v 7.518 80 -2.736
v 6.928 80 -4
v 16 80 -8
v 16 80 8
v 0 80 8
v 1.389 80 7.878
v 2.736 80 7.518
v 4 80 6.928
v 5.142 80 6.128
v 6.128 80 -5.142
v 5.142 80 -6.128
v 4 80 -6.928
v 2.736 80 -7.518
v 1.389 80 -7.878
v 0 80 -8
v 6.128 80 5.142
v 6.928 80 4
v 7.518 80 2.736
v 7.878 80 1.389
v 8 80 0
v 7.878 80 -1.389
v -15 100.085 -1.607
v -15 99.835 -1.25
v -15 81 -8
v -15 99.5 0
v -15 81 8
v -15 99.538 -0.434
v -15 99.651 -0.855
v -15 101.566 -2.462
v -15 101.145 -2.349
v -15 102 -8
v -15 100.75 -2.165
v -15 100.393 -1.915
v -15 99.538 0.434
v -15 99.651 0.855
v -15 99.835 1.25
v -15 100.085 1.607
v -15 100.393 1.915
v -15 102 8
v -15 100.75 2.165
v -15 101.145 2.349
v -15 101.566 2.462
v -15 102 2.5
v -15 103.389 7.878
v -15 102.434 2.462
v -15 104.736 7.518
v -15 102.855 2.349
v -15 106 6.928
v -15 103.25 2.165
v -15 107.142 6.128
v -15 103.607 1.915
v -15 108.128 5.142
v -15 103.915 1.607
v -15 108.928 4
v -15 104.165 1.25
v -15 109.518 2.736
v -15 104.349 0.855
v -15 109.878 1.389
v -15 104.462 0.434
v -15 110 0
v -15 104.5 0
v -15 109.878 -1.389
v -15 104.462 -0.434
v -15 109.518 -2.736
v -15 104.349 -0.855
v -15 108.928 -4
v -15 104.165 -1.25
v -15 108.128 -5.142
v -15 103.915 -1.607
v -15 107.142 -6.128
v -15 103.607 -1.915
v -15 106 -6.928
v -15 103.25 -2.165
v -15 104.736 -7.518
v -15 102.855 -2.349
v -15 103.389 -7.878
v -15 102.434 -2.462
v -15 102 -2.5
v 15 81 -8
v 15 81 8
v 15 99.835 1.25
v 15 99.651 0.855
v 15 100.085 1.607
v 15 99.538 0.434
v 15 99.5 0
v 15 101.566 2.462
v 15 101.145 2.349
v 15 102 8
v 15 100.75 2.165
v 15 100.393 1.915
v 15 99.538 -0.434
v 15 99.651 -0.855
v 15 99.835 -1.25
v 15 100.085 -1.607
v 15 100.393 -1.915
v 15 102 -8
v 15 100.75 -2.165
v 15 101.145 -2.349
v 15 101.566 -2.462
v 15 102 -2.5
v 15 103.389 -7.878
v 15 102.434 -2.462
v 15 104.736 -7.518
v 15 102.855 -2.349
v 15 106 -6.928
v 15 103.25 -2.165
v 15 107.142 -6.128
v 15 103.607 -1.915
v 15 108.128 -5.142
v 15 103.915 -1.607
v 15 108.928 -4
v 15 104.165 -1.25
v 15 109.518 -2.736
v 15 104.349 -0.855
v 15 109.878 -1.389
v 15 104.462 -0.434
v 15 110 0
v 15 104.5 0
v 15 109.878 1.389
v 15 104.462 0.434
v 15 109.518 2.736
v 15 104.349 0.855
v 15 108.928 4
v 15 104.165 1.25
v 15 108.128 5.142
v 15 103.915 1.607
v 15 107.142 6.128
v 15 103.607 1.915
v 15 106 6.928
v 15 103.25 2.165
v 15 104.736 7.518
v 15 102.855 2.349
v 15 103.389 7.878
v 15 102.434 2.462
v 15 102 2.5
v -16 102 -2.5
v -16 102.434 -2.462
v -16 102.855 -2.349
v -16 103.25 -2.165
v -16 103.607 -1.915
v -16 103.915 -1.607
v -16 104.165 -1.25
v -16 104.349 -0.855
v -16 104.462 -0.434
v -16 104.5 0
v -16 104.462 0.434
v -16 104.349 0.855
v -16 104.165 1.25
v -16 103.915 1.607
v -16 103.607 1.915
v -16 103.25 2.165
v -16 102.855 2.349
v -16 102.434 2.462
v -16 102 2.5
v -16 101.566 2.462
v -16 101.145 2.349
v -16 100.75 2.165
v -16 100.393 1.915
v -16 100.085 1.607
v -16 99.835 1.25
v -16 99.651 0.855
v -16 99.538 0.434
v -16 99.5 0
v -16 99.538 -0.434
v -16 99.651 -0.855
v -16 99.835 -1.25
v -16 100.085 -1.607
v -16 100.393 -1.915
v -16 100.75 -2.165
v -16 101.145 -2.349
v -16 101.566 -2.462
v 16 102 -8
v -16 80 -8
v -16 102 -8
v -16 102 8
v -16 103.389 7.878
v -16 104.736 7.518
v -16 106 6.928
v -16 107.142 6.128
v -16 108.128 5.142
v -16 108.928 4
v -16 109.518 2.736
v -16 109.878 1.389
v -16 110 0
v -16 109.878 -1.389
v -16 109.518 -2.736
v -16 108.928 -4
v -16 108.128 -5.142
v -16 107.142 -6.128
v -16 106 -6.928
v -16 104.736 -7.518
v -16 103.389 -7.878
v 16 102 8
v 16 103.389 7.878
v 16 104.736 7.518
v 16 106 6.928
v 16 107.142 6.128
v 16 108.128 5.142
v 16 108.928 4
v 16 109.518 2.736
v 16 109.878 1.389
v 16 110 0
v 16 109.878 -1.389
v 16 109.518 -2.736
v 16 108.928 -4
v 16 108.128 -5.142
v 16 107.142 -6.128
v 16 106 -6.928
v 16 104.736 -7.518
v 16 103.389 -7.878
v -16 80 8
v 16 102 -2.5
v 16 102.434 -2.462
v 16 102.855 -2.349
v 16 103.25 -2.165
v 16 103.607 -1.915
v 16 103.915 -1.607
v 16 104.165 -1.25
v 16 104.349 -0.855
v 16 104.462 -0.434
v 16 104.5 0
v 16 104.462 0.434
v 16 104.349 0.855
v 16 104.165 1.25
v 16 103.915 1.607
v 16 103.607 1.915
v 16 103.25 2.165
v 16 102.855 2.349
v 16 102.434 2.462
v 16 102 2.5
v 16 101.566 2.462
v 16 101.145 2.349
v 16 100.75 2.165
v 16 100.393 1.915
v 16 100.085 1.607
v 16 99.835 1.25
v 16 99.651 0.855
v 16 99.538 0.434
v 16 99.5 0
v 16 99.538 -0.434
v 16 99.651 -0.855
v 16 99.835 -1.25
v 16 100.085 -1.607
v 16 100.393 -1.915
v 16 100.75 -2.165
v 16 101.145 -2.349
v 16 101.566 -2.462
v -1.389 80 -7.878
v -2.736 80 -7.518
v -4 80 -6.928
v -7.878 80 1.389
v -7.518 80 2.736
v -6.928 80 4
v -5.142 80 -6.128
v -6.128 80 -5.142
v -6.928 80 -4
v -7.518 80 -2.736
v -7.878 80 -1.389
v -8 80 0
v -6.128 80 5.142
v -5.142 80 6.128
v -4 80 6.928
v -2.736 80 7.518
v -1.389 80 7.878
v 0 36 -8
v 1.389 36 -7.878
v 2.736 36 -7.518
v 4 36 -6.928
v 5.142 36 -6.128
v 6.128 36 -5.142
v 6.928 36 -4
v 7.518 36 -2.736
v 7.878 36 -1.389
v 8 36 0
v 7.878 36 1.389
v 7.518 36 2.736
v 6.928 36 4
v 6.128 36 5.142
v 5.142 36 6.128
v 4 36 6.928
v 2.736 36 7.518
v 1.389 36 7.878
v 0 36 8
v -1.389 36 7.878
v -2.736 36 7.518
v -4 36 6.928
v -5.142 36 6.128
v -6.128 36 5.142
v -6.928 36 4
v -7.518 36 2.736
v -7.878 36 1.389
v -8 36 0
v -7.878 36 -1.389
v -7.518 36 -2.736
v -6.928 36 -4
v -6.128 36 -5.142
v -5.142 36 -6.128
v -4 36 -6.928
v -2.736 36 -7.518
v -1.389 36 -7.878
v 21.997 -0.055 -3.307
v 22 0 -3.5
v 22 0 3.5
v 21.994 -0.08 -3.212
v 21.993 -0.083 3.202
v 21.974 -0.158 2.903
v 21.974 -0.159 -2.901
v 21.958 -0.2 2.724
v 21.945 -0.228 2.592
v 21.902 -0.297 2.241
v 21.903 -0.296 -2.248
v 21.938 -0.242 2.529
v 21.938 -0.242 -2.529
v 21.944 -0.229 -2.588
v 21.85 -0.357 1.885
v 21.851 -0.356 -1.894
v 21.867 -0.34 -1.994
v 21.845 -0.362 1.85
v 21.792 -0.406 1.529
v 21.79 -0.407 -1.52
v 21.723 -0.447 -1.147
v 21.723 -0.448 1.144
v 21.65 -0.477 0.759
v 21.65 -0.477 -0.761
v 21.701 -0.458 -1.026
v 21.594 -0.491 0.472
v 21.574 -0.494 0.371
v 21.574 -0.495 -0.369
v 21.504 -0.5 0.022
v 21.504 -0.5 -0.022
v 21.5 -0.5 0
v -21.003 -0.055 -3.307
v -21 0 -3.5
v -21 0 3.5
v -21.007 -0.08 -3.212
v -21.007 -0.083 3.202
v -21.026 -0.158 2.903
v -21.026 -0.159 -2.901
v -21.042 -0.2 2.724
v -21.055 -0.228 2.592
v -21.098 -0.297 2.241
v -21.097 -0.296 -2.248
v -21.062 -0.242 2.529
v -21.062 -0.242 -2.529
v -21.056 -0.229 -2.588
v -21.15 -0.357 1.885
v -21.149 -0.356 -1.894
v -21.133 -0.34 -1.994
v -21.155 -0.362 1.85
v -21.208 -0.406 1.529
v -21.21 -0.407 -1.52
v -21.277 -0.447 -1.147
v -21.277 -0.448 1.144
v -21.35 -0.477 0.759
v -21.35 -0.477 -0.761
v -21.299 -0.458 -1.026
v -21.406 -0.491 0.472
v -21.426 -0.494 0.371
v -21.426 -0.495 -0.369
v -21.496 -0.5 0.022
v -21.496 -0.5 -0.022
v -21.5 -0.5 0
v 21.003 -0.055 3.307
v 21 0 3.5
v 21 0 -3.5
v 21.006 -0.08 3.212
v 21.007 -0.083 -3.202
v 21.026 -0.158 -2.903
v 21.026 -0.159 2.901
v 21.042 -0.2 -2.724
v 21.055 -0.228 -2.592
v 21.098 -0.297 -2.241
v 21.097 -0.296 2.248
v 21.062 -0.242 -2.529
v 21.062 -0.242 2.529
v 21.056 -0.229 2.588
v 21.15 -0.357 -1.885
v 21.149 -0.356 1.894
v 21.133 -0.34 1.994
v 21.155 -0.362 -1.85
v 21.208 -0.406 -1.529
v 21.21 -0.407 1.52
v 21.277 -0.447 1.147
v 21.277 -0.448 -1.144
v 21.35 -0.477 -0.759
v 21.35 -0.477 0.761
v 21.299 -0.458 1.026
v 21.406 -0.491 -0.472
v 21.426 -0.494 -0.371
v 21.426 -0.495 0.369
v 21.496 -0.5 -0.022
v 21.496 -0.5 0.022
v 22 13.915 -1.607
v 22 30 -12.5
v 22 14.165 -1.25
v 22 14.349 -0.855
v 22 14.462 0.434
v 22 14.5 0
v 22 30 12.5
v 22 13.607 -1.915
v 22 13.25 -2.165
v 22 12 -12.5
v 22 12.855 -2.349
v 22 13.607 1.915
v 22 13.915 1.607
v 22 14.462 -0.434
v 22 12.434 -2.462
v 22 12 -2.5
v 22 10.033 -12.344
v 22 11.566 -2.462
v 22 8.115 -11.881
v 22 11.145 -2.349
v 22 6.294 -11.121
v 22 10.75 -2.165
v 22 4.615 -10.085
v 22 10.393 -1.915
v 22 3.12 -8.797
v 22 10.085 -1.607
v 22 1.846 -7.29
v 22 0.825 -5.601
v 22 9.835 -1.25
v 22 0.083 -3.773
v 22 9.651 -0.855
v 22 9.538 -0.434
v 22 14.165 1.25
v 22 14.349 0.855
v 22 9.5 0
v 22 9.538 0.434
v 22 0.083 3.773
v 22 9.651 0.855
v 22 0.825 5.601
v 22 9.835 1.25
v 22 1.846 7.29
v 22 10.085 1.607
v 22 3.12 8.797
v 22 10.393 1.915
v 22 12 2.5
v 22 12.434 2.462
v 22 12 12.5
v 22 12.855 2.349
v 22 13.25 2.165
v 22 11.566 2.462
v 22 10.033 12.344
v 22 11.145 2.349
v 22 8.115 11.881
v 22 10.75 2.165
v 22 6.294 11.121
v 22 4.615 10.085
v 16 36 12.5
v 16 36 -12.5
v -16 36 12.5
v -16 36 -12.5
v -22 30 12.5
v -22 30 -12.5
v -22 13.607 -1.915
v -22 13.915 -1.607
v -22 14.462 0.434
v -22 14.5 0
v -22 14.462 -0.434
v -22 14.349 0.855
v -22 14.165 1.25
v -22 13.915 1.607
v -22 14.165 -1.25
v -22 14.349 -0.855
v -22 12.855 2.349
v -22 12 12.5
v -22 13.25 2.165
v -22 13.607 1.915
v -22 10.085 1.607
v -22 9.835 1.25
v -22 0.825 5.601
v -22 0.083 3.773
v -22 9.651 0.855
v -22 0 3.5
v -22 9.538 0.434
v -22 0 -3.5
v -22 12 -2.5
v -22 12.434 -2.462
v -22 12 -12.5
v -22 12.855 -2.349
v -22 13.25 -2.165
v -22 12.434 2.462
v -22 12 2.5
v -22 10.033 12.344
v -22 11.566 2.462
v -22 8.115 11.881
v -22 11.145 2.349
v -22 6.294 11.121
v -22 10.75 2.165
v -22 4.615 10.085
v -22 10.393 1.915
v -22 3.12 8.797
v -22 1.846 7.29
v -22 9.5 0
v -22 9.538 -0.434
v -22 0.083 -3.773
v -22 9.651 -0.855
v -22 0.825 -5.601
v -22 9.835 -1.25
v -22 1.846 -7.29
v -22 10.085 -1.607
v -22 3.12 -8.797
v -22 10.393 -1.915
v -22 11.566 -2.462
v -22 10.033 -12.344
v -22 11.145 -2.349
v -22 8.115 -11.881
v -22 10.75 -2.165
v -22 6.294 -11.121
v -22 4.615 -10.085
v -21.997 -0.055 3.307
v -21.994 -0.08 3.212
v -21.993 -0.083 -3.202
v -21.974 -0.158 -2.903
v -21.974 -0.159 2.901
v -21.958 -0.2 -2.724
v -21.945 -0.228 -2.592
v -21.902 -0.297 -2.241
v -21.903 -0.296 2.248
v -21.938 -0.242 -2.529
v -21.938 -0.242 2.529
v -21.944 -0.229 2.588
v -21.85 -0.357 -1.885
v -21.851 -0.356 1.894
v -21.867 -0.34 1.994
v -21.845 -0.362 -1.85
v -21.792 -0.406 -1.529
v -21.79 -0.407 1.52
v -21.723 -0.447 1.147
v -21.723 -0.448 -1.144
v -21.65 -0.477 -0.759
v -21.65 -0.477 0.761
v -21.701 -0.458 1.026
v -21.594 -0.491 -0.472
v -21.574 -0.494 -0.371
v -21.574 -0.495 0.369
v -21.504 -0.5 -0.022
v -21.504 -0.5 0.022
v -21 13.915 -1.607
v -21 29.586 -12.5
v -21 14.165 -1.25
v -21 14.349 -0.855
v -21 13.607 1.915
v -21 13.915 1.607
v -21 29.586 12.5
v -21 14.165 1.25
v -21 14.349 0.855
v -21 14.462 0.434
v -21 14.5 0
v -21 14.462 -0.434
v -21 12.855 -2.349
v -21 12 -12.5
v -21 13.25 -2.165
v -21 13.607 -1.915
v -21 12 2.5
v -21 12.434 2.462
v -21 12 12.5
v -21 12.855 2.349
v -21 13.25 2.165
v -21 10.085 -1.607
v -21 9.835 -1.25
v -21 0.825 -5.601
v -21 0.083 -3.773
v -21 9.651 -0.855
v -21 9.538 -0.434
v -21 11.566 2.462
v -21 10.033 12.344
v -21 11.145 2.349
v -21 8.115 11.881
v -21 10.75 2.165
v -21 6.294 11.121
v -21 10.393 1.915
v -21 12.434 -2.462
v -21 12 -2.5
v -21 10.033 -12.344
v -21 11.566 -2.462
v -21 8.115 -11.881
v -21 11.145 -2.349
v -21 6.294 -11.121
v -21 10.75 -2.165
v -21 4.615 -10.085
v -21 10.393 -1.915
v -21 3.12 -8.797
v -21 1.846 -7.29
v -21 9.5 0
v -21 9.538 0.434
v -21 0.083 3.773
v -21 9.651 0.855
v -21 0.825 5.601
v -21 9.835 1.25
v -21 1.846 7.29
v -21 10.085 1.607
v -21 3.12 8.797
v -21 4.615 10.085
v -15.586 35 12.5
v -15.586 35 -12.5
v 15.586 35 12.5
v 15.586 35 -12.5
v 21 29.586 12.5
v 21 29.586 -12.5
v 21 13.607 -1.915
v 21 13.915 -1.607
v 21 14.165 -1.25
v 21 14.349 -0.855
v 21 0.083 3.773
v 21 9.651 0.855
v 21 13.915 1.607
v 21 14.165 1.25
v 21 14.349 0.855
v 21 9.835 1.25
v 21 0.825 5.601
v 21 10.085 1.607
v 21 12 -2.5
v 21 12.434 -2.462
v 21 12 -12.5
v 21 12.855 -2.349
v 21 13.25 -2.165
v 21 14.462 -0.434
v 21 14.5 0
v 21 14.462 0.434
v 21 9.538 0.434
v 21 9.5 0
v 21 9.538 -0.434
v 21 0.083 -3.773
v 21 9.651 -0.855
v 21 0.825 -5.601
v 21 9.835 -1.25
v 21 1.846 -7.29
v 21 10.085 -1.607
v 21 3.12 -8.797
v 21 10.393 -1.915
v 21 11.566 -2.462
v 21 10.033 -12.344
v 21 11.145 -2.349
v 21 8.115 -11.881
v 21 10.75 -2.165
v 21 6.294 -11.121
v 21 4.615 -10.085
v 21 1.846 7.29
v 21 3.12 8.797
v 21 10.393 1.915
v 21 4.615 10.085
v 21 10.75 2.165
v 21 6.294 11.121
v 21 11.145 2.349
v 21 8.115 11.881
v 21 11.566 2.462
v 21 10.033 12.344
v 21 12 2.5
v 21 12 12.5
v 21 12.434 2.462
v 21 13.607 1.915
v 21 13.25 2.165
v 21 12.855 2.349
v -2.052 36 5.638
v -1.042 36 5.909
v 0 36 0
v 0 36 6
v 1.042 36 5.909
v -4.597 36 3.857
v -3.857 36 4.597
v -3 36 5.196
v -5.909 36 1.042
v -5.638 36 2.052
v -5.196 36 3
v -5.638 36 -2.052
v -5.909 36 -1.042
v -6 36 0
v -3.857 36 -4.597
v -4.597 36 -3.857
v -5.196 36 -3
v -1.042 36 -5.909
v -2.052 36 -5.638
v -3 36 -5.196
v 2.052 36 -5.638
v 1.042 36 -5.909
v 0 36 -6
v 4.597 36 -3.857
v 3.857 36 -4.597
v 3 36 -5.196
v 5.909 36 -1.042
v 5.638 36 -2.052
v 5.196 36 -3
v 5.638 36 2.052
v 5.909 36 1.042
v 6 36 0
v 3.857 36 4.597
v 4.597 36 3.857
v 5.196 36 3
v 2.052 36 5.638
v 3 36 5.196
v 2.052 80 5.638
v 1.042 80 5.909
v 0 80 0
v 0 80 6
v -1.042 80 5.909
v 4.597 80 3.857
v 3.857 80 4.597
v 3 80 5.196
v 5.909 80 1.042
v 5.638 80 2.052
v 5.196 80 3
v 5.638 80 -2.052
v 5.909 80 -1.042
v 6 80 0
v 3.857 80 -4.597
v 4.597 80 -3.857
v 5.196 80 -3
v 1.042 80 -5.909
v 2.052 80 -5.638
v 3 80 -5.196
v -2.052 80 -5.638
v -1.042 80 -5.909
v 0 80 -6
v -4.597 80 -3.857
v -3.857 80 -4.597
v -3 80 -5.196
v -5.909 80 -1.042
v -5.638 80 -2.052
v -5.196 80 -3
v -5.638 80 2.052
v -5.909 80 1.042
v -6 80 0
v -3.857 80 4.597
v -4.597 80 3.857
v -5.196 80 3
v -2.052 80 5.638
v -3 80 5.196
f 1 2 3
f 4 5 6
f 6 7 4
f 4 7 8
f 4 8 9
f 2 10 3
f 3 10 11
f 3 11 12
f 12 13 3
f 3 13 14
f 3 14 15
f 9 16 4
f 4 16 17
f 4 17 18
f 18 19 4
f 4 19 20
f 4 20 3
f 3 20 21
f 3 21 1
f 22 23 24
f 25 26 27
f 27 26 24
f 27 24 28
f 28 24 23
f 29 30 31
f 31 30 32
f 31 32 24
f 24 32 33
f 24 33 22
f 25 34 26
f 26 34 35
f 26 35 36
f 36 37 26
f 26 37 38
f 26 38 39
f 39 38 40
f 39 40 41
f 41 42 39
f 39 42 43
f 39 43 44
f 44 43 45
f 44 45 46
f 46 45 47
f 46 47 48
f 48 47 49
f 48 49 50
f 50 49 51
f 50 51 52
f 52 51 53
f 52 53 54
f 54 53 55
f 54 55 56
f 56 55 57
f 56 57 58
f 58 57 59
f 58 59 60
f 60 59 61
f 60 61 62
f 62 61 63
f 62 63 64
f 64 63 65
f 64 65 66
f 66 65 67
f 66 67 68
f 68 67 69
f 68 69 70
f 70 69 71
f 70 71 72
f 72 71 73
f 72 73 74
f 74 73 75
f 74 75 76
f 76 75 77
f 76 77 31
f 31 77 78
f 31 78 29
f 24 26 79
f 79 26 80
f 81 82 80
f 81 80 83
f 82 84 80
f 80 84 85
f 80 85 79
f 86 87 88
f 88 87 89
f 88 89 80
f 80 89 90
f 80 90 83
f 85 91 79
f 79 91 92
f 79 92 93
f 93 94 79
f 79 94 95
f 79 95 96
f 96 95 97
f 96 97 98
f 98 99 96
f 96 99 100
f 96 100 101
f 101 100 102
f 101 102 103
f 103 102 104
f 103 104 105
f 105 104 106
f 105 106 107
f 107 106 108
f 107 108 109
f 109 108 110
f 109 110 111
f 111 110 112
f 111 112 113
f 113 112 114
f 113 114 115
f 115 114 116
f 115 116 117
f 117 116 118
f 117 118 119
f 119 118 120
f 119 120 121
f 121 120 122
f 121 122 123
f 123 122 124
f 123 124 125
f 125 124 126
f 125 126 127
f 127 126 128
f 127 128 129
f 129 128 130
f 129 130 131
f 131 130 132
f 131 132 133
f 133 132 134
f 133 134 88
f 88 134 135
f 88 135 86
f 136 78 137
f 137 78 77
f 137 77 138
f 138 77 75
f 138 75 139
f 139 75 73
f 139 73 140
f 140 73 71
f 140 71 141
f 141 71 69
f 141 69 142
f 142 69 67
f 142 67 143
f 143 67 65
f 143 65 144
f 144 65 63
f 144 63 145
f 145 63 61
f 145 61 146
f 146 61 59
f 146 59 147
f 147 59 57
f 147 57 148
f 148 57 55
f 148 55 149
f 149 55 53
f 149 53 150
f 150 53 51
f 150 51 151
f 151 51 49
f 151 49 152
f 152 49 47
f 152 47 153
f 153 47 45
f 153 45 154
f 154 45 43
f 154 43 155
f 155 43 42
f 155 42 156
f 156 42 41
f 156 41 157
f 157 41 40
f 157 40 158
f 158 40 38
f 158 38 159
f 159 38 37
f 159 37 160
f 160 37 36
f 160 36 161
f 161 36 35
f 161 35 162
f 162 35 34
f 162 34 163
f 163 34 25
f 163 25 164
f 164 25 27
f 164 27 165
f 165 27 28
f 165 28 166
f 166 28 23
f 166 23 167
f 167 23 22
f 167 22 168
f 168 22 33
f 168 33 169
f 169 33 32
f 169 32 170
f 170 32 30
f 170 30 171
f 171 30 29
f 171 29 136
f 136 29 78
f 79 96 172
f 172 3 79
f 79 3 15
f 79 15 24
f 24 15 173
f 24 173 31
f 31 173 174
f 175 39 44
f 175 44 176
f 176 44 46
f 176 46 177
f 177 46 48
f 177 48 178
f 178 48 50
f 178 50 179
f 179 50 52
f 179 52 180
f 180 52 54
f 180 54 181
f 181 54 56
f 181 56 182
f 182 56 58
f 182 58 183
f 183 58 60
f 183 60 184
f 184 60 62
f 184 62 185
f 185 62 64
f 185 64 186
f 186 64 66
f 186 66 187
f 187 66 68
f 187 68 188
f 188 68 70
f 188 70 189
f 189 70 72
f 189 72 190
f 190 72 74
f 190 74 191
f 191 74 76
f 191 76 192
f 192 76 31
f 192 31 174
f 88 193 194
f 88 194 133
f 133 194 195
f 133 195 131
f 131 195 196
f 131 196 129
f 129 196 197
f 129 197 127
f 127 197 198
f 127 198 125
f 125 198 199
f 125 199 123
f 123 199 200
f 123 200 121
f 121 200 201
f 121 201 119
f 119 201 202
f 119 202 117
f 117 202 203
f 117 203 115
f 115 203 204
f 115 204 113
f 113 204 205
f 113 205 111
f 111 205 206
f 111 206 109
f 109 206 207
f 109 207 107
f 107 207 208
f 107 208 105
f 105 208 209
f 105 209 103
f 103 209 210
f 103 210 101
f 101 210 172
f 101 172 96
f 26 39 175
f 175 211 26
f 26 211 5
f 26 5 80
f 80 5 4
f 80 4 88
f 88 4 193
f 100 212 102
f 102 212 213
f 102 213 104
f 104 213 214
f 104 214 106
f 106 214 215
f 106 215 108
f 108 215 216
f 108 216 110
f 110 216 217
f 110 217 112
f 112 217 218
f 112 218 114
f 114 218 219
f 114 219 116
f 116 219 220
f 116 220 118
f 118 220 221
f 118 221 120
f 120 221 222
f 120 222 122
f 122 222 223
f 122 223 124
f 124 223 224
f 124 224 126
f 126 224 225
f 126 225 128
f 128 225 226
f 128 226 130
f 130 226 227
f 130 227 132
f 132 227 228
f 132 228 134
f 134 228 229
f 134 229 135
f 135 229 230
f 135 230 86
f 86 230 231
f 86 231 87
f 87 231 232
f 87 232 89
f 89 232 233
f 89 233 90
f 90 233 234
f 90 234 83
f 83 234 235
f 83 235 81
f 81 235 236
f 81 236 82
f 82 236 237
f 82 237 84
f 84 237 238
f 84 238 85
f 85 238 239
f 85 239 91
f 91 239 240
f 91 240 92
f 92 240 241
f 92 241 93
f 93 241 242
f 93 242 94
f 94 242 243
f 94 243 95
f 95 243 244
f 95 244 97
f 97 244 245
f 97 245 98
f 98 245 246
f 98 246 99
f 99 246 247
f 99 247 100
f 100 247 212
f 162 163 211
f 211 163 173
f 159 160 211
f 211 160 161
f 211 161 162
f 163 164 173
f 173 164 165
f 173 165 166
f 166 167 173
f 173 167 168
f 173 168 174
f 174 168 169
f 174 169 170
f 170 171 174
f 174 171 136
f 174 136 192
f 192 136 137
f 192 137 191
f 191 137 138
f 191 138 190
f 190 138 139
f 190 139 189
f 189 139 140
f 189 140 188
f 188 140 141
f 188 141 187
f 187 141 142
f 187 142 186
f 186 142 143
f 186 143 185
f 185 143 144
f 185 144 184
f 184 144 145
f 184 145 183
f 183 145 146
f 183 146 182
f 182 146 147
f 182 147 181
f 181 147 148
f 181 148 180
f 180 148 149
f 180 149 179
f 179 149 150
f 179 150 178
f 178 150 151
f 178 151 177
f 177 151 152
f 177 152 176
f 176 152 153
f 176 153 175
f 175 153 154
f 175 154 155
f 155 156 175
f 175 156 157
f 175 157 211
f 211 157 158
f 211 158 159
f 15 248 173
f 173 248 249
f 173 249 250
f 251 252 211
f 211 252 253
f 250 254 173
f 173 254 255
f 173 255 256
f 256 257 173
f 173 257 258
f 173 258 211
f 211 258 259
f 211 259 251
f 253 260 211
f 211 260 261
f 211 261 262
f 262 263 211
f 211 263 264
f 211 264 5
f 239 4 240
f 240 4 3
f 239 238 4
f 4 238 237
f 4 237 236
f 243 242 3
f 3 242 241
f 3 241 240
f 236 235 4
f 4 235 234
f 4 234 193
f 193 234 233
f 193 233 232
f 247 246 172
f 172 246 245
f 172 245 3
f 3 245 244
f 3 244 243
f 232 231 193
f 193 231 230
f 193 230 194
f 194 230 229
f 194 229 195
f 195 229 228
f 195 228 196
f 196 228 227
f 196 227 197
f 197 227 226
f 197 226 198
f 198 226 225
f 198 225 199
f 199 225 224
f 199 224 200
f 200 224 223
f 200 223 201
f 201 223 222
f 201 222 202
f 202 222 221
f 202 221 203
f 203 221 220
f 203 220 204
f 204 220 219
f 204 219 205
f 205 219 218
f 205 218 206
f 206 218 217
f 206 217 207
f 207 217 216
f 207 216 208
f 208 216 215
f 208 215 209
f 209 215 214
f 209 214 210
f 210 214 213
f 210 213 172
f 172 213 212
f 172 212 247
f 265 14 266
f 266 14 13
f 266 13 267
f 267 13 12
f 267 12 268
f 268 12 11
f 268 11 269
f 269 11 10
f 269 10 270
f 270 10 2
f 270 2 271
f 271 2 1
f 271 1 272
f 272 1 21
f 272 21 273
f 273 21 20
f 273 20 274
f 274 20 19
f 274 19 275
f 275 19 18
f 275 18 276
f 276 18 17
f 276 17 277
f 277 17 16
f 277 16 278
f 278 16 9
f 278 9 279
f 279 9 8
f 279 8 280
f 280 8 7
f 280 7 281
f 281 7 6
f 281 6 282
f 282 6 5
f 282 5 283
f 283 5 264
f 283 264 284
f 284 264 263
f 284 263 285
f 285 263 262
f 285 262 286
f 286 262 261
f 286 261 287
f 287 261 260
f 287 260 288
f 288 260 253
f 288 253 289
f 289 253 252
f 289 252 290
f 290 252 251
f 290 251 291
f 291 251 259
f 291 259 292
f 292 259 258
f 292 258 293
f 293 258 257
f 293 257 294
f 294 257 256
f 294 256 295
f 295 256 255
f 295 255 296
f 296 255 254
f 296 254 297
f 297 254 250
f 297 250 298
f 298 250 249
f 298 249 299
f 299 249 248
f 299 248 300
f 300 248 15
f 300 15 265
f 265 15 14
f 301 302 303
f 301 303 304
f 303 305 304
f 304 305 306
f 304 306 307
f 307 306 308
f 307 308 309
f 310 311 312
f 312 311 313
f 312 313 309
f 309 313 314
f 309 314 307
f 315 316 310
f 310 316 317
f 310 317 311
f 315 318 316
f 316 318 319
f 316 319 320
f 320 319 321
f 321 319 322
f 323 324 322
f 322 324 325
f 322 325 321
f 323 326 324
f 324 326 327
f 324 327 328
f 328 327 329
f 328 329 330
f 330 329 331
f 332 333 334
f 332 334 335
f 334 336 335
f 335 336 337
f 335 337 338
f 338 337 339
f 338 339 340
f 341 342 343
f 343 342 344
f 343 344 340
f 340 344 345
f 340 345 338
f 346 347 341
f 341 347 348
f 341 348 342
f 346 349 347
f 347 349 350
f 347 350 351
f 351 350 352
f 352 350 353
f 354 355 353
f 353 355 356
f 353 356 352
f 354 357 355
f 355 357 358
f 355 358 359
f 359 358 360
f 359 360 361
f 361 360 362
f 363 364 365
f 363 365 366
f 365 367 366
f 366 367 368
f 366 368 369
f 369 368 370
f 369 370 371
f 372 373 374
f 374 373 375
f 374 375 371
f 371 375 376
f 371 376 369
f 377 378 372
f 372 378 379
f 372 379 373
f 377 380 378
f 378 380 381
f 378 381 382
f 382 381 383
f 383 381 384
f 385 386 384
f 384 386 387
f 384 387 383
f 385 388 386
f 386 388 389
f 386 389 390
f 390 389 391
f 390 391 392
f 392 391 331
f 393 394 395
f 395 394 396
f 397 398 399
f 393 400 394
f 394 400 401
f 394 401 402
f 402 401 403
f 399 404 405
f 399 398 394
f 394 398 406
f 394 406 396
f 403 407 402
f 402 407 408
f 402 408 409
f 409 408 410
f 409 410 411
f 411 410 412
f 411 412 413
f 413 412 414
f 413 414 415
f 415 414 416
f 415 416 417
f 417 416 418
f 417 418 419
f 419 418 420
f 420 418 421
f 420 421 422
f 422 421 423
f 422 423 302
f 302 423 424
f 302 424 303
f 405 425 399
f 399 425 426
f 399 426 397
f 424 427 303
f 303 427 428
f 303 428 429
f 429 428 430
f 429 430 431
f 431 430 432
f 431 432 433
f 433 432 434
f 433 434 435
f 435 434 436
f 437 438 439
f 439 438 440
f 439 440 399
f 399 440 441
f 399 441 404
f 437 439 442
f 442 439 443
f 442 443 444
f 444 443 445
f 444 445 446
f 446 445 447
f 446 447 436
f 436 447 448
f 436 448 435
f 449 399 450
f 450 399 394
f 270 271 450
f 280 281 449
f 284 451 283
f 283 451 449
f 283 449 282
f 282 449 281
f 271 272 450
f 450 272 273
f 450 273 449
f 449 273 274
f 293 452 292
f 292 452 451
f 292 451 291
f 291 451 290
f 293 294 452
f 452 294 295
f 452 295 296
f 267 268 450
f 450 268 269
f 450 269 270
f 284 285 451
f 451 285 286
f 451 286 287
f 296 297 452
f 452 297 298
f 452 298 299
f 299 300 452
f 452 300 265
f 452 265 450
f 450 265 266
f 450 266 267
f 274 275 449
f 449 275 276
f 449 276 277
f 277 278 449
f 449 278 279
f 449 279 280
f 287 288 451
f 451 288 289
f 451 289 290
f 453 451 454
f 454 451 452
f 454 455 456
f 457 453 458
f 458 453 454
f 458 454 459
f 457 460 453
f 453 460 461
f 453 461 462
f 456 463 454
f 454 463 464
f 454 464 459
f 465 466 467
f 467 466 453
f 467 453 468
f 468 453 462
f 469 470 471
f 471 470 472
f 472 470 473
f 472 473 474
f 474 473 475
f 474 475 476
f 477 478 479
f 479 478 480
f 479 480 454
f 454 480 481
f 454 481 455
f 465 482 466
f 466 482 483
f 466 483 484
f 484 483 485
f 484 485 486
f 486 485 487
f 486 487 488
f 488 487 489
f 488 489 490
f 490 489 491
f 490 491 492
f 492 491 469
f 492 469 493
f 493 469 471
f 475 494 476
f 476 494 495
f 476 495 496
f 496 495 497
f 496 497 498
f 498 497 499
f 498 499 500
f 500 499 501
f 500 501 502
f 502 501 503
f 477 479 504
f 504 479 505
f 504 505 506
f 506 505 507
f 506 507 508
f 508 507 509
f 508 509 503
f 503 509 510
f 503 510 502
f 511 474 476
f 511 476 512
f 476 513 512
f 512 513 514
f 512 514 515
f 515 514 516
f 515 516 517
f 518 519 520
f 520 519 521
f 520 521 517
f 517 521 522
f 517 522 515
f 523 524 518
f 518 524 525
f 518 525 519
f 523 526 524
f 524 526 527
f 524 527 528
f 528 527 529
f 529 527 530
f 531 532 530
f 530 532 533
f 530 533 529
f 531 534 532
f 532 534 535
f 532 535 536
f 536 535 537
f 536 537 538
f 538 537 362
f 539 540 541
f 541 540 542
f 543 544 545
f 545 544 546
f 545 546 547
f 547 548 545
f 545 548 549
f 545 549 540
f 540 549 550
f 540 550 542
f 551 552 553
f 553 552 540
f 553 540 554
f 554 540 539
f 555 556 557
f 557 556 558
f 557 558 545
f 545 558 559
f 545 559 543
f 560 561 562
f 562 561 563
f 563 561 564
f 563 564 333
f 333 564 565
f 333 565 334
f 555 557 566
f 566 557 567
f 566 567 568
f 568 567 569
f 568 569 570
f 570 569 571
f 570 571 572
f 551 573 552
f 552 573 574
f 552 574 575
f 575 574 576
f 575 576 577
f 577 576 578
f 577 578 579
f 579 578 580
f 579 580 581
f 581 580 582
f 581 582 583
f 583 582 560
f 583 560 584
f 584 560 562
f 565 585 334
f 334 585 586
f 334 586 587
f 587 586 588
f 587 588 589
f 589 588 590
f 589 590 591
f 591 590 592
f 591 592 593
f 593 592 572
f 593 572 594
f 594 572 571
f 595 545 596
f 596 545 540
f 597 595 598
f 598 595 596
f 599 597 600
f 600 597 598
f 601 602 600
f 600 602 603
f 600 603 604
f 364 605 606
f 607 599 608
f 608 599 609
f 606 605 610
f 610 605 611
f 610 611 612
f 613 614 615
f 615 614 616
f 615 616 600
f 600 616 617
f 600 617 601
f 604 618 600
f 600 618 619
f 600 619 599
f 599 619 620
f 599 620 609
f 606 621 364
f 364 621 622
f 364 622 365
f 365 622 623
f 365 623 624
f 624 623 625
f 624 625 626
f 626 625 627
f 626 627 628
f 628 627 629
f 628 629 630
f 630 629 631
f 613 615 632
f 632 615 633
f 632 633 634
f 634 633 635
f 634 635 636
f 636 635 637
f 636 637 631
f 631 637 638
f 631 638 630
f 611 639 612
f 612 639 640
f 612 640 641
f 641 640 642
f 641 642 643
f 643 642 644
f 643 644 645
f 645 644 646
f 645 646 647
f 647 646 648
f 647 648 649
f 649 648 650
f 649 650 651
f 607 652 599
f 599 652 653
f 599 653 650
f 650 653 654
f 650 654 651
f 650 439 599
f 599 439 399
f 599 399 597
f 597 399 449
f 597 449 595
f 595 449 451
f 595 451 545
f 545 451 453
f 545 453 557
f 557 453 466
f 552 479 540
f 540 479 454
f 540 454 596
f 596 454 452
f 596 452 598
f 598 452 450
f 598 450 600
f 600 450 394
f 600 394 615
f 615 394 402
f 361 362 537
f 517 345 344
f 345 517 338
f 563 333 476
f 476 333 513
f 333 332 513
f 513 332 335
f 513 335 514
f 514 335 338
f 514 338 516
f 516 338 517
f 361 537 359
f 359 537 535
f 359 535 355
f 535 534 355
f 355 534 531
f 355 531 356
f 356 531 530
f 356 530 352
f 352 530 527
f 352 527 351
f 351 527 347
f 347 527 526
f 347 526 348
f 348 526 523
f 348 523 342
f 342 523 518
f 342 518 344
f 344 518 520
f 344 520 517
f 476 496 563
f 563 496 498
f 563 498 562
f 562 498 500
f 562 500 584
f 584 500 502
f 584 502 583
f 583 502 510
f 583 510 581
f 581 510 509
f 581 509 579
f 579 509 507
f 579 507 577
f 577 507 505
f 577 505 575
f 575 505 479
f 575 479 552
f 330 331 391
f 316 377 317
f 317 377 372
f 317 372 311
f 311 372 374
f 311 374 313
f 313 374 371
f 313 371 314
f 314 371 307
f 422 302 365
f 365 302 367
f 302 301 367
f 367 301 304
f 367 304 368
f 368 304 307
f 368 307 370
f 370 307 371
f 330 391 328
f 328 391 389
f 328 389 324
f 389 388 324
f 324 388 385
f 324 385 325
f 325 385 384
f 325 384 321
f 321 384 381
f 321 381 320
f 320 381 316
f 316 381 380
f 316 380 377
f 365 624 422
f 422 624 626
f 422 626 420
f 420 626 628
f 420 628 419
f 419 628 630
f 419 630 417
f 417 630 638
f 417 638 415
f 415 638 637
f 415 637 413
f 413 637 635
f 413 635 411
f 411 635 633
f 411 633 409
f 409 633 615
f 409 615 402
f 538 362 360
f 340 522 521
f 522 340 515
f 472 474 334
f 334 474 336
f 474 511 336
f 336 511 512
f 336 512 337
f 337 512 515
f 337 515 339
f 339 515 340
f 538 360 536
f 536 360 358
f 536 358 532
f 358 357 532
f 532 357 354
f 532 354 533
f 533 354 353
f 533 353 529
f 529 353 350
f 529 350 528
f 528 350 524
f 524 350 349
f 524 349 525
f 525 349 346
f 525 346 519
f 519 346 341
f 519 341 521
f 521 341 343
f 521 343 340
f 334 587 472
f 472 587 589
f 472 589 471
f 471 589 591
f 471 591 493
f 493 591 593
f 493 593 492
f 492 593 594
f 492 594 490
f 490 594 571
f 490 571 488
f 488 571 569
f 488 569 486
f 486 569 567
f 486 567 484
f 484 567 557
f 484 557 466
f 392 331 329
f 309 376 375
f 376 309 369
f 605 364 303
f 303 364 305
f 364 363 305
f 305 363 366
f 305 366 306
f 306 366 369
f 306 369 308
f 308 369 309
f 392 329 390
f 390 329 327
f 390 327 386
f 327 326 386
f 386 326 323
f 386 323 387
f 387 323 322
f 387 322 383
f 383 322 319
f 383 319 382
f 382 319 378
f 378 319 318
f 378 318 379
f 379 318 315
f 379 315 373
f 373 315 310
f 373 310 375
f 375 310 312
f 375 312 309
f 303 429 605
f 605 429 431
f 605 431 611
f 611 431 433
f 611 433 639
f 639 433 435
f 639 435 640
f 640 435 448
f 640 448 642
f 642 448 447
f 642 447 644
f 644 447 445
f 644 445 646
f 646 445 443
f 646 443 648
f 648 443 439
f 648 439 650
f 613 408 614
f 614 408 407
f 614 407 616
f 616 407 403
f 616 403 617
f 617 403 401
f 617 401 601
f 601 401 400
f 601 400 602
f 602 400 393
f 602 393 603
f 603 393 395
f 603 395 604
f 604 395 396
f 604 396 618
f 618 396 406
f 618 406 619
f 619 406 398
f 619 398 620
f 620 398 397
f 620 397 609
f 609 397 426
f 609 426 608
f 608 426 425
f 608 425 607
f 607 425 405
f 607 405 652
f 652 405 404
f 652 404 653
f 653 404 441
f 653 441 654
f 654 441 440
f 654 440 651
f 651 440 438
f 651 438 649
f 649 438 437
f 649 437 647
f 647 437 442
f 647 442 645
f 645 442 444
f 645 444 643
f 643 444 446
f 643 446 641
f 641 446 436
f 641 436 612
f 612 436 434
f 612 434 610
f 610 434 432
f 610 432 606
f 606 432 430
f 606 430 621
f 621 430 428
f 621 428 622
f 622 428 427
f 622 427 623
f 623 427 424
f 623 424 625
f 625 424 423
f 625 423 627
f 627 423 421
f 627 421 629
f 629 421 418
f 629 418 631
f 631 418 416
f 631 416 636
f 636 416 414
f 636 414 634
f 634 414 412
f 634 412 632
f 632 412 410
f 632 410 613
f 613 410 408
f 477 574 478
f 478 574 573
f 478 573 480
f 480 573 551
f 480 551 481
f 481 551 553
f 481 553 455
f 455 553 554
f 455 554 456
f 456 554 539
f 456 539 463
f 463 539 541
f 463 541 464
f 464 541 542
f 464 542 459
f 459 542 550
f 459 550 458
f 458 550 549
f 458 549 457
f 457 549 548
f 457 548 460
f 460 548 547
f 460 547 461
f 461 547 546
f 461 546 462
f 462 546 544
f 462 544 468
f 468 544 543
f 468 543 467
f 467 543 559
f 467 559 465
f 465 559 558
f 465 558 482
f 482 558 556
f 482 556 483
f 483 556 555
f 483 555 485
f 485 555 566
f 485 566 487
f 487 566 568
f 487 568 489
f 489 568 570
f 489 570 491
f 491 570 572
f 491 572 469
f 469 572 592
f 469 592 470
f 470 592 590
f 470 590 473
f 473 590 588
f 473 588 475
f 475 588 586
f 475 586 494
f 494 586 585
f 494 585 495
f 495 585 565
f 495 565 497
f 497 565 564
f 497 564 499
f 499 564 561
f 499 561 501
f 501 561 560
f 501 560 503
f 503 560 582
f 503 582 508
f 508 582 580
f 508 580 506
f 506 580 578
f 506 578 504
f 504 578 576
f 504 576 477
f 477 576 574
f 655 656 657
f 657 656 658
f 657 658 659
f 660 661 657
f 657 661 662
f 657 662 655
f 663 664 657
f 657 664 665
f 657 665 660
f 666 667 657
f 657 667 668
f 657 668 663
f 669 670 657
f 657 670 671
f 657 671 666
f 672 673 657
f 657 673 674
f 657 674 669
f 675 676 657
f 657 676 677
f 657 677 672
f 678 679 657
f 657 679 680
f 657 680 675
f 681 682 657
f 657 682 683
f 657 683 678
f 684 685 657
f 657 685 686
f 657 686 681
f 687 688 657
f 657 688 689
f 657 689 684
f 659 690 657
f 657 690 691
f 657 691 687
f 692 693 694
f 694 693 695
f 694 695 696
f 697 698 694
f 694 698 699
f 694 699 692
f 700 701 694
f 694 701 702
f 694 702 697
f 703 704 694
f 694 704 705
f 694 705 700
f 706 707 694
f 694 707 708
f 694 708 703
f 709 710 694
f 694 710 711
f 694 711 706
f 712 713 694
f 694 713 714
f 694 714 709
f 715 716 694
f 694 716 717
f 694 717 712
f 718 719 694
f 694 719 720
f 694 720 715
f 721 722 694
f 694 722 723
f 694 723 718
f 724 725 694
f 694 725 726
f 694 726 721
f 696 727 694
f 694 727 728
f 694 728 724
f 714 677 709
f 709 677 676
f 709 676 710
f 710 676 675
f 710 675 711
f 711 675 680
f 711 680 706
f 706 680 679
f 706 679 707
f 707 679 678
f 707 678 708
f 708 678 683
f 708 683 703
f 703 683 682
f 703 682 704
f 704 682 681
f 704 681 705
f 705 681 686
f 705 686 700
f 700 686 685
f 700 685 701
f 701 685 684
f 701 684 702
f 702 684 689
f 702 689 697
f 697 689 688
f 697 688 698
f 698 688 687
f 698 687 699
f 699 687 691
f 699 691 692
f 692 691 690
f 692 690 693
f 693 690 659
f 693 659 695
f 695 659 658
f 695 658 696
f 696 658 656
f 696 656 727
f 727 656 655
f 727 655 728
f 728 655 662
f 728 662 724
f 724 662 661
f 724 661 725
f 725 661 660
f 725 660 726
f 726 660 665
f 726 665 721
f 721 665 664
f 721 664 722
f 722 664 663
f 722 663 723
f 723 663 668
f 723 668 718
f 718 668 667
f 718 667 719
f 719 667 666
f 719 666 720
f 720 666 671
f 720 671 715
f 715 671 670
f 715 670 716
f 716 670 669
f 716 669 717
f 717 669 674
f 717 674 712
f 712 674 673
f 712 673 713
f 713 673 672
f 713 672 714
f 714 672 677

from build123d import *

# Parameters (mm, degrees)
BOSS_EXTRUDE1_DEPTH     = 12.5
BOSS_EXTRUDE1_2_DEPTH   = 12.5
CUT_EXTRUDE1_DEPTH      = 120.593059999
CUT_EXTRUDE1_DEPTH_BACK = 120.593059999
SKETCH3_R               = 2.5
SKETCH4_R               = 8
SKETCH4_R_2             = 6.000365116
BOSS_EXTRUDE2_DEPTH     = 44


with BuildPart() as part:
    # Sketch1 → Boss-Extrude1 (new, symmetric)
    with BuildSketch(Plane.XY):
        with BuildLine():
            Line((-16, 110), (-16, 80))
            Line((-16, 80), (16, 80))
            Line((16, 80), (16, 110))
            ThreePointArc((16, 110), (15.5, 110.5), (15, 110))
            Line((15, 110), (15, 81))
            Line((15, 81), (-15, 81))
            Line((-15, 81), (-15, 110))
            ThreePointArc((-15, 110), (-15.5, 110.5), (-16, 110))
        make_face()
    extrude(amount=BOSS_EXTRUDE1_DEPTH, both=True)


with BuildPart() as body_2:
    # Sketch1 → Boss-Extrude1 2 (new, symmetric)
    with BuildSketch(Plane.XY):
        with BuildLine():
            Line((-22, 0), (-22, 30))
            Line((-22, 30), (-16, 36))
            Line((-16, 36), (16, 36))
            Line((16, 36), (22, 30))
            Line((22, 30), (22, 0))
            ThreePointArc((22, 0), (21.5, -0.5), (21, 0))
            Line((21, 0), (21, 29.585786438))
            Line((21, 29.585786438), (15.585786438, 35))
            Line((15.585786438, 35), (-15.585786438, 35))
            Line((-15.585786438, 35), (-21, 29.585786438))
            Line((-21, 29.585786438), (-21, 0))
            ThreePointArc((-21, 0), (-21.5, -0.5), (-22, 0))
        make_face()
    extrude(amount=BOSS_EXTRUDE1_2_DEPTH, both=True)


with BuildPart() as cut_extrude1_tool:
    # Sketch3 → Cut-Extrude1 (new, two sides: drawn at the far end of the back side and taken through both)
    with BuildSketch(Plane(origin=(22, 0, 0), x_dir=(0, 0, -1), z_dir=(1, 0, 0)).offset(-CUT_EXTRUDE1_DEPTH_BACK)):
        with Locations(Location((0, 102, 0), (0, 0, 90))):
            Circle(SKETCH3_R)
        with Locations((0, 12)):
            Circle(SKETCH3_R)
        with BuildLine():
            Line((8, 80), (8, 102))
            ThreePointArc((8, 102), (0, 110), (-8, 102))
            Line((-8, 102), (-8, 80))
            Line((-8, 80), (-12.5, 80))
            Line((-12.5, 80), (-12.5, 110.5))
            Line((-12.5, 110.5), (12.5, 110.5))
            Line((12.5, 110.5), (12.5, 80))
            Line((12.5, 80), (8, 80))
        make_face()
        with BuildLine():
            Line((-12.5, 12), (-12.5, 36))
            Line((-12.5, 36), (-17.5, 36))
            Line((-17.5, 36), (-17.5, -4))
            Line((-17.5, -4), (17.5, -4))
            Line((17.5, -4), (17.5, 36))
            Line((17.5, 36), (12.5, 36))
            Line((12.5, 36), (12.5, 12))
            ThreePointArc((12.5, 12), (0, -0.5), (-12.5, 12))
        make_face()
    extrude(amount=CUT_EXTRUDE1_DEPTH + CUT_EXTRUDE1_DEPTH_BACK)


with BuildPart() as part_1:
    add(part.part)

    # Cut-Extrude1: cut by cut_extrude1_tool
    add(cut_extrude1_tool.part, mode=Mode.SUBTRACT)



with BuildPart() as body_2_1:
    add(body_2.part)

    # Cut-Extrude1: cut by cut_extrude1_tool
    add(cut_extrude1_tool.part, mode=Mode.SUBTRACT)


with BuildPart() as part_2:
    add(part_1.part)

    add(body_2_1.part)  # Boss-Extrude2 merges body 2
    # Sketch4 → Boss-Extrude2 (add)
    with BuildSketch(Plane(origin=(0, 36, 0), x_dir=(1, 0, 0), z_dir=(0, 1, 0))):
        with Locations(Location((0, 0, 0), (0, 0, 270))):
            Circle(SKETCH4_R)
        with Locations(Location((0, 0, 0), (0, 0, 270))):
            Circle(SKETCH4_R_2, mode=Mode.SUBTRACT)
    extrude(amount=BOSS_EXTRUDE2_DEPTH)


solid = part_2.part
